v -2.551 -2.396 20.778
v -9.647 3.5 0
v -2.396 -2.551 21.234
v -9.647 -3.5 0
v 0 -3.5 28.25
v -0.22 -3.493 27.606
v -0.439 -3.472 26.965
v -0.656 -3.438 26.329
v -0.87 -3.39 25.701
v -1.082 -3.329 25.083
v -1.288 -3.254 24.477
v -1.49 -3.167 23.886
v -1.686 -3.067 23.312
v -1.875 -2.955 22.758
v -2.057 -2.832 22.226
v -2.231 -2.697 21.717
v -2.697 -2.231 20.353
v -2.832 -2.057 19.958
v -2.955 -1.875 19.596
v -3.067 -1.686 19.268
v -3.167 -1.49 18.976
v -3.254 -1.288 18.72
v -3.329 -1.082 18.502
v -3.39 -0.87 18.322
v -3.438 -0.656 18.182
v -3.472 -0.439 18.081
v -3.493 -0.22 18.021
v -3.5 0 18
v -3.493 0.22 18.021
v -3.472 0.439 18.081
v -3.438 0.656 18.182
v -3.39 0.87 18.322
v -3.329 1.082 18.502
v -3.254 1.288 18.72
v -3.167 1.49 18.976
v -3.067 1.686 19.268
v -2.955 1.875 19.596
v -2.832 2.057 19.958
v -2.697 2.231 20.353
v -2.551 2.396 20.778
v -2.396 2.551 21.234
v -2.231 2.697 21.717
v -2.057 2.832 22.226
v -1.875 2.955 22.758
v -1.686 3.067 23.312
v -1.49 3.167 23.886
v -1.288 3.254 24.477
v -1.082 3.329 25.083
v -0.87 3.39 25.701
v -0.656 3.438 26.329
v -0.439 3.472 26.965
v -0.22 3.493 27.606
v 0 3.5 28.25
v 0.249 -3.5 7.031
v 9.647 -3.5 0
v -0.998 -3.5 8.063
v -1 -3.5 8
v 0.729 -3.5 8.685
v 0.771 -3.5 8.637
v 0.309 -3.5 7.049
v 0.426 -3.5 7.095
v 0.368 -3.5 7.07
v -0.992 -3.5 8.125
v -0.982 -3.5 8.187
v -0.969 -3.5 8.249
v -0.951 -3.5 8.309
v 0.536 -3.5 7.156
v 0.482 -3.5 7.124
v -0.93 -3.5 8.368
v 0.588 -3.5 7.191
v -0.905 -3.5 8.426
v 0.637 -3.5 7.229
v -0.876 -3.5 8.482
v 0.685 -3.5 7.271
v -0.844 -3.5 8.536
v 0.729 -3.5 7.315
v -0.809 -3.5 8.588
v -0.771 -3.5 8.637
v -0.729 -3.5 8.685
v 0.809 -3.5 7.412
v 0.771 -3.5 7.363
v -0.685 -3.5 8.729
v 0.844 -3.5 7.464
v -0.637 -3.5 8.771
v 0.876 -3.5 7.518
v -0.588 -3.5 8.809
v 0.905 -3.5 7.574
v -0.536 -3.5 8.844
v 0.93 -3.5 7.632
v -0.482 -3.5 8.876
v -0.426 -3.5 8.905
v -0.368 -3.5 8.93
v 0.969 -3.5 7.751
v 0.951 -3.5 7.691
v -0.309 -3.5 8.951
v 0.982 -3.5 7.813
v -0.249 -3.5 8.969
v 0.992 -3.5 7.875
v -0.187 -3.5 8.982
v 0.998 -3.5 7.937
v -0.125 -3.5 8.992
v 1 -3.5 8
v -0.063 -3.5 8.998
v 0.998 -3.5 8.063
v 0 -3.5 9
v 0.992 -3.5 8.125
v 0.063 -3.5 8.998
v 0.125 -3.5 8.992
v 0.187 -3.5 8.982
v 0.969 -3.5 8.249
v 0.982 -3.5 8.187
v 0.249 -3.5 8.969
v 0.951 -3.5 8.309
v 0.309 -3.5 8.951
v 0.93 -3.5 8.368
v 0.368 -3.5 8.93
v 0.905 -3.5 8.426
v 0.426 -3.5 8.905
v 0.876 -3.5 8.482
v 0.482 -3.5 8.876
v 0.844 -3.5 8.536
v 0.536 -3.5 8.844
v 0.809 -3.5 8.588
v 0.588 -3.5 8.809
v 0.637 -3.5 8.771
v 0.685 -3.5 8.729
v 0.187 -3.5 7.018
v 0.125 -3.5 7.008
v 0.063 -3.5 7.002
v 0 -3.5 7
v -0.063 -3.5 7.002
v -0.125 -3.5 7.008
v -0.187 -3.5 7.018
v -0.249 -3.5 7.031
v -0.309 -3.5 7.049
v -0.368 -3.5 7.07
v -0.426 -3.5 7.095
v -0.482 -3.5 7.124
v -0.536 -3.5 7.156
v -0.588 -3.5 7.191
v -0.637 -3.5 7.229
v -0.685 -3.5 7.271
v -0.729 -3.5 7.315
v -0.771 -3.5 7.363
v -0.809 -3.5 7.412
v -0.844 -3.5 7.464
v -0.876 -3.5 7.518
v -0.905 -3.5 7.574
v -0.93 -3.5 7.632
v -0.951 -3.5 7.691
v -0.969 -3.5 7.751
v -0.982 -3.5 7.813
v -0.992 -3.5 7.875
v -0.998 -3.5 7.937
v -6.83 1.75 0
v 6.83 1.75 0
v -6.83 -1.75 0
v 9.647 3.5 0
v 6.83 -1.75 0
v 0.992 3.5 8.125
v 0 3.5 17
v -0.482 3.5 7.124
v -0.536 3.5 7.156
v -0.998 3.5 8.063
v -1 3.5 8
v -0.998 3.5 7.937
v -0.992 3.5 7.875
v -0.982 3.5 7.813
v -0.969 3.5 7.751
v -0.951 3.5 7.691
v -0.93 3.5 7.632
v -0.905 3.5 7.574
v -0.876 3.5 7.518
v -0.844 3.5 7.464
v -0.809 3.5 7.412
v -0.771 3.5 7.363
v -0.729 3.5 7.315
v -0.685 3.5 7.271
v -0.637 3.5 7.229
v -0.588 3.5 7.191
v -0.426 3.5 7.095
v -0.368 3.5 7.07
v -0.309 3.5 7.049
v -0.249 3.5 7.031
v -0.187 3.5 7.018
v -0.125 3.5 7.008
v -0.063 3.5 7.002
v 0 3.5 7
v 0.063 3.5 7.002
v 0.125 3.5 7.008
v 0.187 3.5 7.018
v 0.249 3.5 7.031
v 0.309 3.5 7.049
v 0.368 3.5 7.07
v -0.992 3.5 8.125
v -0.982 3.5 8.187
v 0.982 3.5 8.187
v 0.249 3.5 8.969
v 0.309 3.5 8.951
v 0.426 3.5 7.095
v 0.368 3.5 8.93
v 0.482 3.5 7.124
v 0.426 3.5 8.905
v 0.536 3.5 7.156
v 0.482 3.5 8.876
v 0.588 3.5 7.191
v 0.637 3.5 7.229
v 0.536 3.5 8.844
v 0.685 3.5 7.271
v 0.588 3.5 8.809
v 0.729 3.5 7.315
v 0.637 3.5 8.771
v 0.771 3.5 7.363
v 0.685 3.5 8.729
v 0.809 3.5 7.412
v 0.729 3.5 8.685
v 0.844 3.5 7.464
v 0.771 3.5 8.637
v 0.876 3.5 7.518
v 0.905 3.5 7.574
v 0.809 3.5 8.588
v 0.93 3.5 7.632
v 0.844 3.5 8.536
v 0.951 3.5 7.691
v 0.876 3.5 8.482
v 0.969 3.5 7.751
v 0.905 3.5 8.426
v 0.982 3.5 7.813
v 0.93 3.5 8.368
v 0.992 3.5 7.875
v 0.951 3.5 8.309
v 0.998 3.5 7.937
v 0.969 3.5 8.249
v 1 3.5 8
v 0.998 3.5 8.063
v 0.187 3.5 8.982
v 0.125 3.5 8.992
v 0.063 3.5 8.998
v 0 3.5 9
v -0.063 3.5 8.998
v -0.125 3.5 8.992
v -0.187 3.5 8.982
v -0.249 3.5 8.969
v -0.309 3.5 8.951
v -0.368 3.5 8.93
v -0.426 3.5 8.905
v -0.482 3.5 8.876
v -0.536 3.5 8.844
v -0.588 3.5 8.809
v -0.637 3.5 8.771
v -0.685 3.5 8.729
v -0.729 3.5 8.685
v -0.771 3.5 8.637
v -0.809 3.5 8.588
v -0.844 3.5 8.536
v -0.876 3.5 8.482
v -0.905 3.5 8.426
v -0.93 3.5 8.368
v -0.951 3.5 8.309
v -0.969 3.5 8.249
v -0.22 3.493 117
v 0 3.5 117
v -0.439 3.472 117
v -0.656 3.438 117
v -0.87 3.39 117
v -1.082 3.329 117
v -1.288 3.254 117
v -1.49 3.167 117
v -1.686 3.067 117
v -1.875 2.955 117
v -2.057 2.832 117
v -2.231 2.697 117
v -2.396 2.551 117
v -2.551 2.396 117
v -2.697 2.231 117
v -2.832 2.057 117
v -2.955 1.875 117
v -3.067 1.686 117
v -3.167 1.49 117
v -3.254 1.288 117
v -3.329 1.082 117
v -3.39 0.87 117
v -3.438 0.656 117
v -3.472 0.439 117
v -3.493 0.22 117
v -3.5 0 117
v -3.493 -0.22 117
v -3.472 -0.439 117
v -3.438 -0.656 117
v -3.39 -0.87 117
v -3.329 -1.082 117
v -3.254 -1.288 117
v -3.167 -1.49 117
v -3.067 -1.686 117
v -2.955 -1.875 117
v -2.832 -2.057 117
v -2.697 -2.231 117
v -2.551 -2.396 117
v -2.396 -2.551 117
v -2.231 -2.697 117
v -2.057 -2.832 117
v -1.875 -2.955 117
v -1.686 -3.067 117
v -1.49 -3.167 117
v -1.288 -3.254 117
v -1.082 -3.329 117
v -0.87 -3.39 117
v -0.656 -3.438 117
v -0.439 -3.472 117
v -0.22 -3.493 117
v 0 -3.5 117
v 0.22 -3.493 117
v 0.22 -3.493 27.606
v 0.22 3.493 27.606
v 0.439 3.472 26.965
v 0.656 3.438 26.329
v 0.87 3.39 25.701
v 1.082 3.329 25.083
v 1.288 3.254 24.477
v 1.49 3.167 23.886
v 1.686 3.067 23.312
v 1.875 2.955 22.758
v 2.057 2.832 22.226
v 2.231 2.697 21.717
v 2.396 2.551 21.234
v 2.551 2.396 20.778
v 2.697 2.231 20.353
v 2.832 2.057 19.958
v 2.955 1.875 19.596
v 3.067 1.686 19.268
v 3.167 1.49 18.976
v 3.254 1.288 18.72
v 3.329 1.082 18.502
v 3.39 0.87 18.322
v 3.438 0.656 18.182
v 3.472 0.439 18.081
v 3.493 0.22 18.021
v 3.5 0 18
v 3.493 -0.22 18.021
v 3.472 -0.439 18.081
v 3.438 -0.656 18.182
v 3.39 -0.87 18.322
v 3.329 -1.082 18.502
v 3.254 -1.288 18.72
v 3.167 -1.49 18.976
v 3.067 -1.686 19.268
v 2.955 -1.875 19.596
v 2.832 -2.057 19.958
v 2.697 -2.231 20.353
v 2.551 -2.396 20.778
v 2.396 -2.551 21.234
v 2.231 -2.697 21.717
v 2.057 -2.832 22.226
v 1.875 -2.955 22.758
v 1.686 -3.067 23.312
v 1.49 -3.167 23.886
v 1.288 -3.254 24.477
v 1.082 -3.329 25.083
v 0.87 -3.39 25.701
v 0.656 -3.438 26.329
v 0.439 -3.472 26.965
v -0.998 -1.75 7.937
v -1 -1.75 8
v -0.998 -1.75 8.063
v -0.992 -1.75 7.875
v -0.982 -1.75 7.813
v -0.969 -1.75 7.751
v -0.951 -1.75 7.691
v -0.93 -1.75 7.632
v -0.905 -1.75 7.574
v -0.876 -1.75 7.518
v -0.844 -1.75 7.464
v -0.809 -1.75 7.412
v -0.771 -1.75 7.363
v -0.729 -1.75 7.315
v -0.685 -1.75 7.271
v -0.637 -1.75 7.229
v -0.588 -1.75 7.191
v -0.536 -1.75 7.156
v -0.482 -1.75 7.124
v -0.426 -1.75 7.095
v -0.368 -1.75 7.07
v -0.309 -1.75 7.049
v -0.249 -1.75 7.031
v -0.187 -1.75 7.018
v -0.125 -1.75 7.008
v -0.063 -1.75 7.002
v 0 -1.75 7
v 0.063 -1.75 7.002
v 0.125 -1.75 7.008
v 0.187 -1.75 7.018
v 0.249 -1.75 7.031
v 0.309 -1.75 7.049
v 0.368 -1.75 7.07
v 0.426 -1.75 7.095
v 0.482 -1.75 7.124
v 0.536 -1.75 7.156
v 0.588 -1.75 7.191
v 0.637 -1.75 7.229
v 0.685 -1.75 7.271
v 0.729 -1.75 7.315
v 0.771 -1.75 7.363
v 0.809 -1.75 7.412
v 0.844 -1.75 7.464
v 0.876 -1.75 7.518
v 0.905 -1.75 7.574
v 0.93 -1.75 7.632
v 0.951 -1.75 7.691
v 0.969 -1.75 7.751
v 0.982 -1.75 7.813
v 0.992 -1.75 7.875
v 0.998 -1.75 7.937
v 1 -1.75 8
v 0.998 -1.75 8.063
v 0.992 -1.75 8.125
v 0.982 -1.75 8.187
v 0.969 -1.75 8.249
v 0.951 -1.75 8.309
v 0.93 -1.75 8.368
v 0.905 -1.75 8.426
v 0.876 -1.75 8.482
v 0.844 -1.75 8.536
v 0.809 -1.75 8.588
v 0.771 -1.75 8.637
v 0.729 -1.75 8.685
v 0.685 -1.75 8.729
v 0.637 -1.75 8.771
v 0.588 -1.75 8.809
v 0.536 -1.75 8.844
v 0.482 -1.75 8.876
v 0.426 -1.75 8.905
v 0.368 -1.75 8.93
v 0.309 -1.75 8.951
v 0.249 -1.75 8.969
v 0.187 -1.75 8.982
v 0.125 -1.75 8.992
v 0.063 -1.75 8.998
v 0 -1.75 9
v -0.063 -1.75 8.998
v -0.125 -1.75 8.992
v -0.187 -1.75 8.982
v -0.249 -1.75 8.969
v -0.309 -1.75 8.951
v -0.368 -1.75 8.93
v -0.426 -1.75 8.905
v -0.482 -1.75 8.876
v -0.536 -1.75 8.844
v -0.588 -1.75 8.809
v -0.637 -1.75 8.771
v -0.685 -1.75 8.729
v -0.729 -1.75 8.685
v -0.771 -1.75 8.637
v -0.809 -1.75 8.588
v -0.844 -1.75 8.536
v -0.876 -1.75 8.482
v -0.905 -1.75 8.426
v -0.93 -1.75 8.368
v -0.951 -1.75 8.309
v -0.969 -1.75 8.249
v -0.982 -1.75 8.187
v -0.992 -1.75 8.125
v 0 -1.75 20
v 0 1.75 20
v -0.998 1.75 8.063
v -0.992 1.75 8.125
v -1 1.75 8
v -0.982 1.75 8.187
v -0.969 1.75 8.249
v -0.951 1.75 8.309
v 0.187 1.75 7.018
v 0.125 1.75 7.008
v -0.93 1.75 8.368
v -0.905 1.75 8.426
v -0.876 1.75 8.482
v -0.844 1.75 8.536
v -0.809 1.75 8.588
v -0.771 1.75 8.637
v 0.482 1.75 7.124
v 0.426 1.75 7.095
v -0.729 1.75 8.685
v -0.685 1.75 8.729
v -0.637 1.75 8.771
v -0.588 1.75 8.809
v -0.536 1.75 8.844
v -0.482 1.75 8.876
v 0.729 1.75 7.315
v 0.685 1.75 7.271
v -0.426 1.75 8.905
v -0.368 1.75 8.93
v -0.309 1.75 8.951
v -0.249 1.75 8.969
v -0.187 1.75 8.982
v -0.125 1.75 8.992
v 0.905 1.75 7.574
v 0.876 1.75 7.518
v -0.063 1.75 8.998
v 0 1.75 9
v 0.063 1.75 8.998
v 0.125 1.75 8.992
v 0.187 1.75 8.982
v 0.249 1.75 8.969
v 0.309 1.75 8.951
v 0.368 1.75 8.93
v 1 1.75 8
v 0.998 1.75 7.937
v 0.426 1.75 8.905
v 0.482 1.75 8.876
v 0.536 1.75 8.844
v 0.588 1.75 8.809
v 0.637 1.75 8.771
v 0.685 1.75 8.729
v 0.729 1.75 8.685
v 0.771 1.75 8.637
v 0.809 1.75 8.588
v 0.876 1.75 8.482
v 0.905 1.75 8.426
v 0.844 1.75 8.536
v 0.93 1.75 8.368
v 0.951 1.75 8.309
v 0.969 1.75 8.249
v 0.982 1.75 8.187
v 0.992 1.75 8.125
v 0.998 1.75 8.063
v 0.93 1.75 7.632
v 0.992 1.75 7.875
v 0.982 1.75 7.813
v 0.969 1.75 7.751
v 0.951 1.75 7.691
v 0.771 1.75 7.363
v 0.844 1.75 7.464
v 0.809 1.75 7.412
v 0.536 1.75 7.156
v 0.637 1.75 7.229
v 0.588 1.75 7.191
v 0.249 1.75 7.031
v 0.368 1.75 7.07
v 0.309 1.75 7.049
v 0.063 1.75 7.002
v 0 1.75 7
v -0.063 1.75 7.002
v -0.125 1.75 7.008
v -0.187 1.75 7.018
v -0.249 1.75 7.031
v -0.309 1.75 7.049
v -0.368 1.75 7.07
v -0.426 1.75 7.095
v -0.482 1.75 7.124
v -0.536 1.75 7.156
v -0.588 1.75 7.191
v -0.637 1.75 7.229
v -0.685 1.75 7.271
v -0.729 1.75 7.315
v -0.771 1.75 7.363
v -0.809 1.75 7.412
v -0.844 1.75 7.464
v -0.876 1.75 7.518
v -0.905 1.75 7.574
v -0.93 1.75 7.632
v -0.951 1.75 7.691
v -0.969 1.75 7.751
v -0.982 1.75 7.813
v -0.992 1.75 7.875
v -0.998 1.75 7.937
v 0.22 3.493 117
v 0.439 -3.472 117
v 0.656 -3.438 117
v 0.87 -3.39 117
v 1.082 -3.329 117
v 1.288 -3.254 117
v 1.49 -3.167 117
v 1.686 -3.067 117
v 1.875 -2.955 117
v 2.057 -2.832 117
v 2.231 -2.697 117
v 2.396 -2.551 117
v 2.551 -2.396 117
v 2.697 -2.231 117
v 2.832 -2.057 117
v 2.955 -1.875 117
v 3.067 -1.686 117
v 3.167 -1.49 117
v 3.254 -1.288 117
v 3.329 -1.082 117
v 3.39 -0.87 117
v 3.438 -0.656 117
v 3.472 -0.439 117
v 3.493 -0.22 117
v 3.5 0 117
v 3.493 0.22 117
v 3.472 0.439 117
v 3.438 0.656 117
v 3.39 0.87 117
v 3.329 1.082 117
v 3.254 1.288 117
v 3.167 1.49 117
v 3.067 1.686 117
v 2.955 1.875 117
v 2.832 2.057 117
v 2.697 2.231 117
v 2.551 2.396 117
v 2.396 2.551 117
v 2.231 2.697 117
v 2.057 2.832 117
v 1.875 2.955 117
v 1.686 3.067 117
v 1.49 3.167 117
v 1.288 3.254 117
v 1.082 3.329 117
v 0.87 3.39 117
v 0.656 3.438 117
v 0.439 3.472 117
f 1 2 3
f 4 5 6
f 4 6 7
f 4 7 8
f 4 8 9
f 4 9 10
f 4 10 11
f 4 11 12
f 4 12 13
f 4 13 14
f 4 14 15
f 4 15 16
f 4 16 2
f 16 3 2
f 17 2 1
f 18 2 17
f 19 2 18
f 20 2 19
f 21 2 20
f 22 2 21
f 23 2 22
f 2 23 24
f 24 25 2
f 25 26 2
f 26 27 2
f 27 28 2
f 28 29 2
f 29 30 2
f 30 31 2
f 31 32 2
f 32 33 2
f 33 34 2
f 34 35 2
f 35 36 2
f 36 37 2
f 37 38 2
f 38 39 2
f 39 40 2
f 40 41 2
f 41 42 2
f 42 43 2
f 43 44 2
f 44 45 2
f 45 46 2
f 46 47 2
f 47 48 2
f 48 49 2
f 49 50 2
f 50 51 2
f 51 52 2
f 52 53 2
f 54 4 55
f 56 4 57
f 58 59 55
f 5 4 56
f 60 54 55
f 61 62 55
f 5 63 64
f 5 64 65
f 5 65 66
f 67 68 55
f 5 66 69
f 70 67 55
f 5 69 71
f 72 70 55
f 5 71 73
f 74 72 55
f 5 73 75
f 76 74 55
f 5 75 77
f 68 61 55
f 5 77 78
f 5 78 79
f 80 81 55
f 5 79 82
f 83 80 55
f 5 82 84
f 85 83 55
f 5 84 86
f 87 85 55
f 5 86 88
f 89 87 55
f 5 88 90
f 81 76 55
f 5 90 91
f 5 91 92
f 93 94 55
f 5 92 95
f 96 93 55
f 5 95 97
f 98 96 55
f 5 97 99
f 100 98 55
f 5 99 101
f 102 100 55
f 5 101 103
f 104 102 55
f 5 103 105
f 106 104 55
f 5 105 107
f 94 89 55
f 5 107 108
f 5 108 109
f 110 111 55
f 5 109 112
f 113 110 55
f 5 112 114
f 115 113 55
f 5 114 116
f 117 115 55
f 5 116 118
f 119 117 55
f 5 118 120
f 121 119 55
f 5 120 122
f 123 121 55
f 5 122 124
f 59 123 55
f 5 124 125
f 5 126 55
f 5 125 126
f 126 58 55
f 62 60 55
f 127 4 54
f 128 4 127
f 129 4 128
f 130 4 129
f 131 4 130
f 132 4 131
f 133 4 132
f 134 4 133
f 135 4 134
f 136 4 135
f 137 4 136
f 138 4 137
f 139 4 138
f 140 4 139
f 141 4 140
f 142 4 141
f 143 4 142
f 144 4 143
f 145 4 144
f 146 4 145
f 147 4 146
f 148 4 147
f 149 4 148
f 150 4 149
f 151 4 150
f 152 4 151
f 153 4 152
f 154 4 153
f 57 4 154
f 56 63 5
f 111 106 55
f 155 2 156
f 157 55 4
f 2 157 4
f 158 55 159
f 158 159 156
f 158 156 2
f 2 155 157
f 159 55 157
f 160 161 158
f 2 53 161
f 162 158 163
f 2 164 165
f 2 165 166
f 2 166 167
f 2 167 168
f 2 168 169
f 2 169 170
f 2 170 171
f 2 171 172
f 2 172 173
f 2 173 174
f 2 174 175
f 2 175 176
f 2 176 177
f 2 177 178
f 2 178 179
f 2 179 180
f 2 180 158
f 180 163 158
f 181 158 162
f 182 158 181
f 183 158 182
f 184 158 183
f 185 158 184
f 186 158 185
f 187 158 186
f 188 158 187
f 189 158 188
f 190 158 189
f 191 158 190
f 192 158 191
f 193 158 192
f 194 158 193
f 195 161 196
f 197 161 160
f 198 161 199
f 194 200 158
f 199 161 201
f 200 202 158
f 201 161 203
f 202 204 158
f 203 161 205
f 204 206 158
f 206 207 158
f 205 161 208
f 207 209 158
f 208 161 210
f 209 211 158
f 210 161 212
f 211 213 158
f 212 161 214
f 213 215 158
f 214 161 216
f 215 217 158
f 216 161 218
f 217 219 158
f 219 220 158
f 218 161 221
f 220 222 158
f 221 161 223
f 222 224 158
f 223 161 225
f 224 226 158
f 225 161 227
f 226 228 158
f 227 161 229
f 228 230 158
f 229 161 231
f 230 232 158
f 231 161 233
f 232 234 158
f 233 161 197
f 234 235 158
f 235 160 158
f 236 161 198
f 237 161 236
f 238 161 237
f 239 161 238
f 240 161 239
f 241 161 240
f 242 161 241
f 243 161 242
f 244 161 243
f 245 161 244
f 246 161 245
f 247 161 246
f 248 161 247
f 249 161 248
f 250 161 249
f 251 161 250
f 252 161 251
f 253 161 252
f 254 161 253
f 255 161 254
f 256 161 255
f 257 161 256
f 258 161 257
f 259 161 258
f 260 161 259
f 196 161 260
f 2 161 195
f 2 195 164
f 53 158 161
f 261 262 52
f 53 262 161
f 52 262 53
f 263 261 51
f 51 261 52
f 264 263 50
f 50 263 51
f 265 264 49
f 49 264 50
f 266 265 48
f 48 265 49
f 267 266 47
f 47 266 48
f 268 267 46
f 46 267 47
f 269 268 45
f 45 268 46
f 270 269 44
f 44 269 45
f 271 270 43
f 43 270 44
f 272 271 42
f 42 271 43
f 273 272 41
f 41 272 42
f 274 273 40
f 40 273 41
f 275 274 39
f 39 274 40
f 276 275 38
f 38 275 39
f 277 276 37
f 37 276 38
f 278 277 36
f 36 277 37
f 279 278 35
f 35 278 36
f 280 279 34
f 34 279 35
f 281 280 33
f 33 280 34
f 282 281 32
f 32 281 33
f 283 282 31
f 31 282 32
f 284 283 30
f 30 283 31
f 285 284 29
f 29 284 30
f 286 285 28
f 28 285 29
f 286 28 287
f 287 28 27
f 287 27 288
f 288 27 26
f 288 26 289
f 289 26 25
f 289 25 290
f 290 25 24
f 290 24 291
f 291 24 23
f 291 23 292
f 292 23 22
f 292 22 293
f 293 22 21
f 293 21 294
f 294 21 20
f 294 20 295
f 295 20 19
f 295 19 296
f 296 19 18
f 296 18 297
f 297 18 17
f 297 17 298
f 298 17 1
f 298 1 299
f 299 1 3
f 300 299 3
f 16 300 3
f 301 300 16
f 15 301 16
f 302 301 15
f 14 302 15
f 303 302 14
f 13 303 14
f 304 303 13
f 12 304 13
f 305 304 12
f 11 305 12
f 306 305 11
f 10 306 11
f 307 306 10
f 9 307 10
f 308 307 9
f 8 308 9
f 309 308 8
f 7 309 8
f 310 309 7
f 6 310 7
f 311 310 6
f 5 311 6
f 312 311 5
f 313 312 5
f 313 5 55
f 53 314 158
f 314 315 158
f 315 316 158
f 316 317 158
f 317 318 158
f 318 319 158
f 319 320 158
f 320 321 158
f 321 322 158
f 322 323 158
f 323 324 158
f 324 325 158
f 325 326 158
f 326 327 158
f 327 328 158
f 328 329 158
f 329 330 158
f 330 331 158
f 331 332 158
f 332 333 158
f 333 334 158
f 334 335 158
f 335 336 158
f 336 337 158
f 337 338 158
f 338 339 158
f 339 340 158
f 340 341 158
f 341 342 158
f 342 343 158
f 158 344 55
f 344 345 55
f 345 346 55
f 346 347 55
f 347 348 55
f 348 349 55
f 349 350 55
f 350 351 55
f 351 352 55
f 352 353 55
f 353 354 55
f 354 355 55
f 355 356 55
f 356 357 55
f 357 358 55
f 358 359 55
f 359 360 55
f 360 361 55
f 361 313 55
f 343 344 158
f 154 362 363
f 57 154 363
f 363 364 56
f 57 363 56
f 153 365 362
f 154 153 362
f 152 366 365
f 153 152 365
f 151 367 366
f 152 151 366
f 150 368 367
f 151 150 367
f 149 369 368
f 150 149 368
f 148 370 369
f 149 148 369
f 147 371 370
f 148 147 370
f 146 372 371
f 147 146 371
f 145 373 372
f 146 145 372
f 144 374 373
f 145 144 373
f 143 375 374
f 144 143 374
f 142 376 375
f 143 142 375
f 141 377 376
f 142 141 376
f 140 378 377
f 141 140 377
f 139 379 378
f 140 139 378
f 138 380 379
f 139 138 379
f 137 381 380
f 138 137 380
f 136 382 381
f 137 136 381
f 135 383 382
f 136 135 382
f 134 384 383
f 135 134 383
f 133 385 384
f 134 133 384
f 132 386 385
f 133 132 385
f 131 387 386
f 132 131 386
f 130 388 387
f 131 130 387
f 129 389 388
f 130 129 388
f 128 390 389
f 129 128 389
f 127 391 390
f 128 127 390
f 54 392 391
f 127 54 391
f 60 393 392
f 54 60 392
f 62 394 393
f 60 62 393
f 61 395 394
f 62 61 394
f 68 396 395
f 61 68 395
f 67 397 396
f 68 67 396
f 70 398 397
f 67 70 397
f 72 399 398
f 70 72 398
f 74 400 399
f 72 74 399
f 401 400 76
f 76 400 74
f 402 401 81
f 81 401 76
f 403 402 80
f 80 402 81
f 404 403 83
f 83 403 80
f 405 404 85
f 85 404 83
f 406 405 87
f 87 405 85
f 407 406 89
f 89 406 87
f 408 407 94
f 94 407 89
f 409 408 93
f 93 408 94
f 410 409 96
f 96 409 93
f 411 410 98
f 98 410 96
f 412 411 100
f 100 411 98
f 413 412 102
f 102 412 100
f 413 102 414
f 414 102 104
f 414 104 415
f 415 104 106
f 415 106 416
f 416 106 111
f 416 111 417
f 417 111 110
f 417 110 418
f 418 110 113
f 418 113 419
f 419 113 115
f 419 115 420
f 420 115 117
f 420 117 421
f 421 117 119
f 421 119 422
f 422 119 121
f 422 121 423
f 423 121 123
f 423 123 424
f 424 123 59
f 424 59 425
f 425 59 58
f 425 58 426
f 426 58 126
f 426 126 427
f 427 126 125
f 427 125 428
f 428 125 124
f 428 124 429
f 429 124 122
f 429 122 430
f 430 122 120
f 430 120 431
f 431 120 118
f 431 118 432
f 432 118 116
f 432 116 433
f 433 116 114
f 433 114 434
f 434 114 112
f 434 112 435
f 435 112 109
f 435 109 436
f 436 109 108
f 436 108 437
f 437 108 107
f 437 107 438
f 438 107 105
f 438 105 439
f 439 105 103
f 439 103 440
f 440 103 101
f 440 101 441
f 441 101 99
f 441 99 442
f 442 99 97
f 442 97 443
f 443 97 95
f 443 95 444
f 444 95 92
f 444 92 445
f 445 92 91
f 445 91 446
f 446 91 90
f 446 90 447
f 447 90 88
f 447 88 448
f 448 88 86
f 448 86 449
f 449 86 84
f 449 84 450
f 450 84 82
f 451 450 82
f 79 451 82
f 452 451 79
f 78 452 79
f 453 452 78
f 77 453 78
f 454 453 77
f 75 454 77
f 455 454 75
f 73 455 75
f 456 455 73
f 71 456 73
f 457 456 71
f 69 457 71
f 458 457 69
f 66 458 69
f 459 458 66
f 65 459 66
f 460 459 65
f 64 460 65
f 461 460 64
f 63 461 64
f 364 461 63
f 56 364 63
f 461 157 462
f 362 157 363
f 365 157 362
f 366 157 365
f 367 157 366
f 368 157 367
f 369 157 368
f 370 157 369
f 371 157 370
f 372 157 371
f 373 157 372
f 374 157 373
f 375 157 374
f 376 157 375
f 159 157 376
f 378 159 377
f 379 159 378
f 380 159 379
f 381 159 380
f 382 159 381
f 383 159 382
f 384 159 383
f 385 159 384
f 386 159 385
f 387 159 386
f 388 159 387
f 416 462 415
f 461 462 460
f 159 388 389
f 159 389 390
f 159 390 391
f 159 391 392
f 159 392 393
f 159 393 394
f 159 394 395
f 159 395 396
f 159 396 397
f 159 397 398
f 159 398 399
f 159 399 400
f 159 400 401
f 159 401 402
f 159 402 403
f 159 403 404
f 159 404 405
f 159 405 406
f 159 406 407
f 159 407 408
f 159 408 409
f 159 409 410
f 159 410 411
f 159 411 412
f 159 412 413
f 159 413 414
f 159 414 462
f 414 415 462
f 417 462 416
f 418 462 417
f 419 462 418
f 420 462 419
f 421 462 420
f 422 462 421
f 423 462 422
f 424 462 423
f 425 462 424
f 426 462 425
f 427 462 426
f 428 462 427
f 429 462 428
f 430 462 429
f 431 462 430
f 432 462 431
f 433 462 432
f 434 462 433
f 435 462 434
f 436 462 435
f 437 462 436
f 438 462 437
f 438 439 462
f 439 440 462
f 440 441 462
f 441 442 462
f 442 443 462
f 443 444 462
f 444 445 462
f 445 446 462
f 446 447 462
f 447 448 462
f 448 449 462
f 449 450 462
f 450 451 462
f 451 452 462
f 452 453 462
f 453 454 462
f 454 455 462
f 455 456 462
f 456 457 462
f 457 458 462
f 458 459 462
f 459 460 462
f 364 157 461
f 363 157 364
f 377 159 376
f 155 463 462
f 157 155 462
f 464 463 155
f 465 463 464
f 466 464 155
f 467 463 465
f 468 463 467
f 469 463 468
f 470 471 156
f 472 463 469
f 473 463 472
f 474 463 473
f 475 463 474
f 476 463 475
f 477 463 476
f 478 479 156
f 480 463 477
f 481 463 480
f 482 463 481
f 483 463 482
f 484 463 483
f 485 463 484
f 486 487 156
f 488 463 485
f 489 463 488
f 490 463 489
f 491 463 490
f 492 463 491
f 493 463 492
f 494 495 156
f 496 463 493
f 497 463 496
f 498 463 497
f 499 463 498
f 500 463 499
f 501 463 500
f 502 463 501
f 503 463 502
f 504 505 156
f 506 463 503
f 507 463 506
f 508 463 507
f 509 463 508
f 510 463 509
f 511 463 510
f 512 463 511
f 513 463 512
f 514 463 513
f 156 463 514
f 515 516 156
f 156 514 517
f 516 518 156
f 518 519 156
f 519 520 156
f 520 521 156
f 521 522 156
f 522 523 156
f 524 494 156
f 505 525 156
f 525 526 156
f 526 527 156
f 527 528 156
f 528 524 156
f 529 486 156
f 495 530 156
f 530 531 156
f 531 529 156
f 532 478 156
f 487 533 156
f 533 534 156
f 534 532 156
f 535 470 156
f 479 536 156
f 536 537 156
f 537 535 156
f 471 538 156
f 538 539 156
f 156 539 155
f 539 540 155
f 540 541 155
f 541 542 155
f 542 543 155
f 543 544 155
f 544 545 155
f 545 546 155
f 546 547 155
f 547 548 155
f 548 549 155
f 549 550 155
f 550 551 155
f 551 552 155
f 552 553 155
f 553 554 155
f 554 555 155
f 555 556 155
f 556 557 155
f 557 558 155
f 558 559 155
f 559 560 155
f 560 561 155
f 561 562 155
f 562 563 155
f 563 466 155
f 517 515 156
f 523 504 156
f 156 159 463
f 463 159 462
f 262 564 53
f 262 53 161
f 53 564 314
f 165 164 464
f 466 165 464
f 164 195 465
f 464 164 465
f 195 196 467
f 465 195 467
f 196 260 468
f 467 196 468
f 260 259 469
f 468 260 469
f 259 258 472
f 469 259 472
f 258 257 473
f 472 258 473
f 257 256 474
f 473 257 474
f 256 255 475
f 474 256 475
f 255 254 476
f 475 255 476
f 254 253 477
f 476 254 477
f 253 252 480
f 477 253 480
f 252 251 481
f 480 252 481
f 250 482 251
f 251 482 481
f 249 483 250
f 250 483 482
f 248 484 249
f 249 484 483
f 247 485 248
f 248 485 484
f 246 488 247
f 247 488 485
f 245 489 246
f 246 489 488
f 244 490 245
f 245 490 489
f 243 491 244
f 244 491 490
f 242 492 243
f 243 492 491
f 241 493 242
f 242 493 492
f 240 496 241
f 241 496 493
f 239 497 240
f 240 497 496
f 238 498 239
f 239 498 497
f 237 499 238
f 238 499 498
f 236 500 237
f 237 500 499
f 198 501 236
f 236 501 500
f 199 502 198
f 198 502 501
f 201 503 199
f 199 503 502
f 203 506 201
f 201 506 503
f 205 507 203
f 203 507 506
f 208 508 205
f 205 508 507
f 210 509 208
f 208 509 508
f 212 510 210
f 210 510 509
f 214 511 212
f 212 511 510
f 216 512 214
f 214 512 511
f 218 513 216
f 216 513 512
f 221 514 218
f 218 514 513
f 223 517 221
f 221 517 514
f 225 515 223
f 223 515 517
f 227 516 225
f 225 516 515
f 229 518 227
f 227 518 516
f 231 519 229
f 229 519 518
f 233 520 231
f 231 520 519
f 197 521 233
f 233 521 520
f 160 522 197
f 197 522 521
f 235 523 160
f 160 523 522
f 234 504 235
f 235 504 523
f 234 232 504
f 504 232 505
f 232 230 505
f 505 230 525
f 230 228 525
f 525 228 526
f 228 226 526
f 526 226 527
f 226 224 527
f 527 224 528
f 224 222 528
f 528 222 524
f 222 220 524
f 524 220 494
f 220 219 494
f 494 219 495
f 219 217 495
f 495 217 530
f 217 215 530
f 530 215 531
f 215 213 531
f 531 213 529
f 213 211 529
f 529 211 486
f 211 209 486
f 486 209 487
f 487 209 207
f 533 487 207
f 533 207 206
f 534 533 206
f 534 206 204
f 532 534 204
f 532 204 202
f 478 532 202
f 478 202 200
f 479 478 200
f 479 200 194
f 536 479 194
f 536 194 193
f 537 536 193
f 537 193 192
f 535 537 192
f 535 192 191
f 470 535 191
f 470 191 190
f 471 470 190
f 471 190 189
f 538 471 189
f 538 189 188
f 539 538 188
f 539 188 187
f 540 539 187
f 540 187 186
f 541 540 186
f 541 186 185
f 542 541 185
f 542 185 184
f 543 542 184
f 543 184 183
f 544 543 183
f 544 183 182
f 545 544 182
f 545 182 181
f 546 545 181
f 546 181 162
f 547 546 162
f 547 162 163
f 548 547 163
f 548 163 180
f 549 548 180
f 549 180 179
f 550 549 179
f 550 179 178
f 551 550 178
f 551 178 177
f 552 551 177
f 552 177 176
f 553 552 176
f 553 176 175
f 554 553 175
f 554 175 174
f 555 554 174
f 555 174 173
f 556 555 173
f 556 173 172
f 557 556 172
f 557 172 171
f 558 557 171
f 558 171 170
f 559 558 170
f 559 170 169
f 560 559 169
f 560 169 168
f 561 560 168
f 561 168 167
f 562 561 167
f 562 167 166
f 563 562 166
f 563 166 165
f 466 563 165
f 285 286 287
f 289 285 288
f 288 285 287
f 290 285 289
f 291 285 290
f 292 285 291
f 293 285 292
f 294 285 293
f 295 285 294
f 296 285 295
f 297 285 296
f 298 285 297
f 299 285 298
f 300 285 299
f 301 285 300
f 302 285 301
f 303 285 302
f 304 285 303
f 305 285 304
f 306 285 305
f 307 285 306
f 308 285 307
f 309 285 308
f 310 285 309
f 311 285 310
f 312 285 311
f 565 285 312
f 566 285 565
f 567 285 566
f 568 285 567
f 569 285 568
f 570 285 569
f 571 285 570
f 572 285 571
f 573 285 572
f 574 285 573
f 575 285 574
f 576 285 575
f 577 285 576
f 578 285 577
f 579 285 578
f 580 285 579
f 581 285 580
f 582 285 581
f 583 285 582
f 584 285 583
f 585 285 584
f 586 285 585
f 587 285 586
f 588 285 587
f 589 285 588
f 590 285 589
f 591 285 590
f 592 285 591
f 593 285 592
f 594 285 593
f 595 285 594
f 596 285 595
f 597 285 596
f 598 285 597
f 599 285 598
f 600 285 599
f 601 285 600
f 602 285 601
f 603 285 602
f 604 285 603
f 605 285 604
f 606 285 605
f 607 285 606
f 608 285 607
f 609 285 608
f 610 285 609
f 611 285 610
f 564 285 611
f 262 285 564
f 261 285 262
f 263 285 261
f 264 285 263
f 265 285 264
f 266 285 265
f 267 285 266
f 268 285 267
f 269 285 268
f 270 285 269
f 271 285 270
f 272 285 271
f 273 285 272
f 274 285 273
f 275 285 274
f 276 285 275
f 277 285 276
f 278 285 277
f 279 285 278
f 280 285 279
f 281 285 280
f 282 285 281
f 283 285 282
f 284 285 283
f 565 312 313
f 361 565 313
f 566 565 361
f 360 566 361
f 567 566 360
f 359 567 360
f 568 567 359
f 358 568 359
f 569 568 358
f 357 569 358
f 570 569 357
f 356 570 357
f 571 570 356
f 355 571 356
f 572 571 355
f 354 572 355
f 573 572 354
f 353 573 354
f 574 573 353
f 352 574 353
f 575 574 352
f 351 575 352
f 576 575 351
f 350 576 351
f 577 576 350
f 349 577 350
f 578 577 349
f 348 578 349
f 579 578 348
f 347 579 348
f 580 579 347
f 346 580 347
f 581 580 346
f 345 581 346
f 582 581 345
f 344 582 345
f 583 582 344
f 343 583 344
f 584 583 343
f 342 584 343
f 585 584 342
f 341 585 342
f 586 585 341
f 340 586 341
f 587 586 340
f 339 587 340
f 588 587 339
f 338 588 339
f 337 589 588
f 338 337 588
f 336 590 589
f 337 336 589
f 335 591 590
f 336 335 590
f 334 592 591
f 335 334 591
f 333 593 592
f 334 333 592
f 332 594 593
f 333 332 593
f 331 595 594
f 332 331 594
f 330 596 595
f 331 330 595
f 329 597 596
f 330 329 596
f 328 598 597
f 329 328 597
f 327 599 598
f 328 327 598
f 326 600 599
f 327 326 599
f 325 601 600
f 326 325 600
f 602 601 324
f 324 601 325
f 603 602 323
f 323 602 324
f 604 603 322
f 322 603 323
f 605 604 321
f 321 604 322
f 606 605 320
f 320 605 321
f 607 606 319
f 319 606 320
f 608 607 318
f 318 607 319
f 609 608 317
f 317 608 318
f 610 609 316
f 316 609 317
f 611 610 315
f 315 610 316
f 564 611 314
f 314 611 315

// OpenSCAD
wood_thickness = 3.5;
star_side_top = 28;
star_side_height = sqrt(42.2*42.2-100);
base_height_from_star_tip = 20;
stem_lenght = 100;
stem_diameter = 2*wood_thickness;
hole_diameter = 2;
hole_height = 12;

module FullStarSide() {
	linear_extrude(height=wood_thickness, center=true, convexity=10, twist=0)
	polygon(points=[[0,0],[star_side_top/2,star_side_height],[-star_side_top/2,star_side_height]], paths=[[0,1,2]]);
}

module StarSide() {
	difference() {
		FullStarSide();
		translate([0,8.25,0]) scale([1,1,1.5]) FullStarSide();
	}
}
translate([0, 0, base_height_from_star_tip]) rotate([270, 0, 0]) color("green") union() {
	difference() {
		union() {
			scale([1,1,2]) translate([0,-8.25,0]) FullStarSide();
			translate([0, 3, 0]) rotate([90,0,0]) cylinder(h=stem_lenght, r=stem_diameter/2, $fn=100);
		}
		FullStarSide();
		translate([-star_side_top/2-1,base_height_from_star_tip,-wood_thickness/2-100]) cube([star_side_top+2,star_side_height+2,wood_thickness+200]);
		translate([0,hole_height,0]) cylinder(h=100, r=hole_diameter/2, center=true, $fn=100);
	}
}
*color("BurlyWood") StarSide();
*color("red") translate([0,hole_height,0]) cylinder(h=100, r=hole_diameter/2, center=true, $fn=100);
